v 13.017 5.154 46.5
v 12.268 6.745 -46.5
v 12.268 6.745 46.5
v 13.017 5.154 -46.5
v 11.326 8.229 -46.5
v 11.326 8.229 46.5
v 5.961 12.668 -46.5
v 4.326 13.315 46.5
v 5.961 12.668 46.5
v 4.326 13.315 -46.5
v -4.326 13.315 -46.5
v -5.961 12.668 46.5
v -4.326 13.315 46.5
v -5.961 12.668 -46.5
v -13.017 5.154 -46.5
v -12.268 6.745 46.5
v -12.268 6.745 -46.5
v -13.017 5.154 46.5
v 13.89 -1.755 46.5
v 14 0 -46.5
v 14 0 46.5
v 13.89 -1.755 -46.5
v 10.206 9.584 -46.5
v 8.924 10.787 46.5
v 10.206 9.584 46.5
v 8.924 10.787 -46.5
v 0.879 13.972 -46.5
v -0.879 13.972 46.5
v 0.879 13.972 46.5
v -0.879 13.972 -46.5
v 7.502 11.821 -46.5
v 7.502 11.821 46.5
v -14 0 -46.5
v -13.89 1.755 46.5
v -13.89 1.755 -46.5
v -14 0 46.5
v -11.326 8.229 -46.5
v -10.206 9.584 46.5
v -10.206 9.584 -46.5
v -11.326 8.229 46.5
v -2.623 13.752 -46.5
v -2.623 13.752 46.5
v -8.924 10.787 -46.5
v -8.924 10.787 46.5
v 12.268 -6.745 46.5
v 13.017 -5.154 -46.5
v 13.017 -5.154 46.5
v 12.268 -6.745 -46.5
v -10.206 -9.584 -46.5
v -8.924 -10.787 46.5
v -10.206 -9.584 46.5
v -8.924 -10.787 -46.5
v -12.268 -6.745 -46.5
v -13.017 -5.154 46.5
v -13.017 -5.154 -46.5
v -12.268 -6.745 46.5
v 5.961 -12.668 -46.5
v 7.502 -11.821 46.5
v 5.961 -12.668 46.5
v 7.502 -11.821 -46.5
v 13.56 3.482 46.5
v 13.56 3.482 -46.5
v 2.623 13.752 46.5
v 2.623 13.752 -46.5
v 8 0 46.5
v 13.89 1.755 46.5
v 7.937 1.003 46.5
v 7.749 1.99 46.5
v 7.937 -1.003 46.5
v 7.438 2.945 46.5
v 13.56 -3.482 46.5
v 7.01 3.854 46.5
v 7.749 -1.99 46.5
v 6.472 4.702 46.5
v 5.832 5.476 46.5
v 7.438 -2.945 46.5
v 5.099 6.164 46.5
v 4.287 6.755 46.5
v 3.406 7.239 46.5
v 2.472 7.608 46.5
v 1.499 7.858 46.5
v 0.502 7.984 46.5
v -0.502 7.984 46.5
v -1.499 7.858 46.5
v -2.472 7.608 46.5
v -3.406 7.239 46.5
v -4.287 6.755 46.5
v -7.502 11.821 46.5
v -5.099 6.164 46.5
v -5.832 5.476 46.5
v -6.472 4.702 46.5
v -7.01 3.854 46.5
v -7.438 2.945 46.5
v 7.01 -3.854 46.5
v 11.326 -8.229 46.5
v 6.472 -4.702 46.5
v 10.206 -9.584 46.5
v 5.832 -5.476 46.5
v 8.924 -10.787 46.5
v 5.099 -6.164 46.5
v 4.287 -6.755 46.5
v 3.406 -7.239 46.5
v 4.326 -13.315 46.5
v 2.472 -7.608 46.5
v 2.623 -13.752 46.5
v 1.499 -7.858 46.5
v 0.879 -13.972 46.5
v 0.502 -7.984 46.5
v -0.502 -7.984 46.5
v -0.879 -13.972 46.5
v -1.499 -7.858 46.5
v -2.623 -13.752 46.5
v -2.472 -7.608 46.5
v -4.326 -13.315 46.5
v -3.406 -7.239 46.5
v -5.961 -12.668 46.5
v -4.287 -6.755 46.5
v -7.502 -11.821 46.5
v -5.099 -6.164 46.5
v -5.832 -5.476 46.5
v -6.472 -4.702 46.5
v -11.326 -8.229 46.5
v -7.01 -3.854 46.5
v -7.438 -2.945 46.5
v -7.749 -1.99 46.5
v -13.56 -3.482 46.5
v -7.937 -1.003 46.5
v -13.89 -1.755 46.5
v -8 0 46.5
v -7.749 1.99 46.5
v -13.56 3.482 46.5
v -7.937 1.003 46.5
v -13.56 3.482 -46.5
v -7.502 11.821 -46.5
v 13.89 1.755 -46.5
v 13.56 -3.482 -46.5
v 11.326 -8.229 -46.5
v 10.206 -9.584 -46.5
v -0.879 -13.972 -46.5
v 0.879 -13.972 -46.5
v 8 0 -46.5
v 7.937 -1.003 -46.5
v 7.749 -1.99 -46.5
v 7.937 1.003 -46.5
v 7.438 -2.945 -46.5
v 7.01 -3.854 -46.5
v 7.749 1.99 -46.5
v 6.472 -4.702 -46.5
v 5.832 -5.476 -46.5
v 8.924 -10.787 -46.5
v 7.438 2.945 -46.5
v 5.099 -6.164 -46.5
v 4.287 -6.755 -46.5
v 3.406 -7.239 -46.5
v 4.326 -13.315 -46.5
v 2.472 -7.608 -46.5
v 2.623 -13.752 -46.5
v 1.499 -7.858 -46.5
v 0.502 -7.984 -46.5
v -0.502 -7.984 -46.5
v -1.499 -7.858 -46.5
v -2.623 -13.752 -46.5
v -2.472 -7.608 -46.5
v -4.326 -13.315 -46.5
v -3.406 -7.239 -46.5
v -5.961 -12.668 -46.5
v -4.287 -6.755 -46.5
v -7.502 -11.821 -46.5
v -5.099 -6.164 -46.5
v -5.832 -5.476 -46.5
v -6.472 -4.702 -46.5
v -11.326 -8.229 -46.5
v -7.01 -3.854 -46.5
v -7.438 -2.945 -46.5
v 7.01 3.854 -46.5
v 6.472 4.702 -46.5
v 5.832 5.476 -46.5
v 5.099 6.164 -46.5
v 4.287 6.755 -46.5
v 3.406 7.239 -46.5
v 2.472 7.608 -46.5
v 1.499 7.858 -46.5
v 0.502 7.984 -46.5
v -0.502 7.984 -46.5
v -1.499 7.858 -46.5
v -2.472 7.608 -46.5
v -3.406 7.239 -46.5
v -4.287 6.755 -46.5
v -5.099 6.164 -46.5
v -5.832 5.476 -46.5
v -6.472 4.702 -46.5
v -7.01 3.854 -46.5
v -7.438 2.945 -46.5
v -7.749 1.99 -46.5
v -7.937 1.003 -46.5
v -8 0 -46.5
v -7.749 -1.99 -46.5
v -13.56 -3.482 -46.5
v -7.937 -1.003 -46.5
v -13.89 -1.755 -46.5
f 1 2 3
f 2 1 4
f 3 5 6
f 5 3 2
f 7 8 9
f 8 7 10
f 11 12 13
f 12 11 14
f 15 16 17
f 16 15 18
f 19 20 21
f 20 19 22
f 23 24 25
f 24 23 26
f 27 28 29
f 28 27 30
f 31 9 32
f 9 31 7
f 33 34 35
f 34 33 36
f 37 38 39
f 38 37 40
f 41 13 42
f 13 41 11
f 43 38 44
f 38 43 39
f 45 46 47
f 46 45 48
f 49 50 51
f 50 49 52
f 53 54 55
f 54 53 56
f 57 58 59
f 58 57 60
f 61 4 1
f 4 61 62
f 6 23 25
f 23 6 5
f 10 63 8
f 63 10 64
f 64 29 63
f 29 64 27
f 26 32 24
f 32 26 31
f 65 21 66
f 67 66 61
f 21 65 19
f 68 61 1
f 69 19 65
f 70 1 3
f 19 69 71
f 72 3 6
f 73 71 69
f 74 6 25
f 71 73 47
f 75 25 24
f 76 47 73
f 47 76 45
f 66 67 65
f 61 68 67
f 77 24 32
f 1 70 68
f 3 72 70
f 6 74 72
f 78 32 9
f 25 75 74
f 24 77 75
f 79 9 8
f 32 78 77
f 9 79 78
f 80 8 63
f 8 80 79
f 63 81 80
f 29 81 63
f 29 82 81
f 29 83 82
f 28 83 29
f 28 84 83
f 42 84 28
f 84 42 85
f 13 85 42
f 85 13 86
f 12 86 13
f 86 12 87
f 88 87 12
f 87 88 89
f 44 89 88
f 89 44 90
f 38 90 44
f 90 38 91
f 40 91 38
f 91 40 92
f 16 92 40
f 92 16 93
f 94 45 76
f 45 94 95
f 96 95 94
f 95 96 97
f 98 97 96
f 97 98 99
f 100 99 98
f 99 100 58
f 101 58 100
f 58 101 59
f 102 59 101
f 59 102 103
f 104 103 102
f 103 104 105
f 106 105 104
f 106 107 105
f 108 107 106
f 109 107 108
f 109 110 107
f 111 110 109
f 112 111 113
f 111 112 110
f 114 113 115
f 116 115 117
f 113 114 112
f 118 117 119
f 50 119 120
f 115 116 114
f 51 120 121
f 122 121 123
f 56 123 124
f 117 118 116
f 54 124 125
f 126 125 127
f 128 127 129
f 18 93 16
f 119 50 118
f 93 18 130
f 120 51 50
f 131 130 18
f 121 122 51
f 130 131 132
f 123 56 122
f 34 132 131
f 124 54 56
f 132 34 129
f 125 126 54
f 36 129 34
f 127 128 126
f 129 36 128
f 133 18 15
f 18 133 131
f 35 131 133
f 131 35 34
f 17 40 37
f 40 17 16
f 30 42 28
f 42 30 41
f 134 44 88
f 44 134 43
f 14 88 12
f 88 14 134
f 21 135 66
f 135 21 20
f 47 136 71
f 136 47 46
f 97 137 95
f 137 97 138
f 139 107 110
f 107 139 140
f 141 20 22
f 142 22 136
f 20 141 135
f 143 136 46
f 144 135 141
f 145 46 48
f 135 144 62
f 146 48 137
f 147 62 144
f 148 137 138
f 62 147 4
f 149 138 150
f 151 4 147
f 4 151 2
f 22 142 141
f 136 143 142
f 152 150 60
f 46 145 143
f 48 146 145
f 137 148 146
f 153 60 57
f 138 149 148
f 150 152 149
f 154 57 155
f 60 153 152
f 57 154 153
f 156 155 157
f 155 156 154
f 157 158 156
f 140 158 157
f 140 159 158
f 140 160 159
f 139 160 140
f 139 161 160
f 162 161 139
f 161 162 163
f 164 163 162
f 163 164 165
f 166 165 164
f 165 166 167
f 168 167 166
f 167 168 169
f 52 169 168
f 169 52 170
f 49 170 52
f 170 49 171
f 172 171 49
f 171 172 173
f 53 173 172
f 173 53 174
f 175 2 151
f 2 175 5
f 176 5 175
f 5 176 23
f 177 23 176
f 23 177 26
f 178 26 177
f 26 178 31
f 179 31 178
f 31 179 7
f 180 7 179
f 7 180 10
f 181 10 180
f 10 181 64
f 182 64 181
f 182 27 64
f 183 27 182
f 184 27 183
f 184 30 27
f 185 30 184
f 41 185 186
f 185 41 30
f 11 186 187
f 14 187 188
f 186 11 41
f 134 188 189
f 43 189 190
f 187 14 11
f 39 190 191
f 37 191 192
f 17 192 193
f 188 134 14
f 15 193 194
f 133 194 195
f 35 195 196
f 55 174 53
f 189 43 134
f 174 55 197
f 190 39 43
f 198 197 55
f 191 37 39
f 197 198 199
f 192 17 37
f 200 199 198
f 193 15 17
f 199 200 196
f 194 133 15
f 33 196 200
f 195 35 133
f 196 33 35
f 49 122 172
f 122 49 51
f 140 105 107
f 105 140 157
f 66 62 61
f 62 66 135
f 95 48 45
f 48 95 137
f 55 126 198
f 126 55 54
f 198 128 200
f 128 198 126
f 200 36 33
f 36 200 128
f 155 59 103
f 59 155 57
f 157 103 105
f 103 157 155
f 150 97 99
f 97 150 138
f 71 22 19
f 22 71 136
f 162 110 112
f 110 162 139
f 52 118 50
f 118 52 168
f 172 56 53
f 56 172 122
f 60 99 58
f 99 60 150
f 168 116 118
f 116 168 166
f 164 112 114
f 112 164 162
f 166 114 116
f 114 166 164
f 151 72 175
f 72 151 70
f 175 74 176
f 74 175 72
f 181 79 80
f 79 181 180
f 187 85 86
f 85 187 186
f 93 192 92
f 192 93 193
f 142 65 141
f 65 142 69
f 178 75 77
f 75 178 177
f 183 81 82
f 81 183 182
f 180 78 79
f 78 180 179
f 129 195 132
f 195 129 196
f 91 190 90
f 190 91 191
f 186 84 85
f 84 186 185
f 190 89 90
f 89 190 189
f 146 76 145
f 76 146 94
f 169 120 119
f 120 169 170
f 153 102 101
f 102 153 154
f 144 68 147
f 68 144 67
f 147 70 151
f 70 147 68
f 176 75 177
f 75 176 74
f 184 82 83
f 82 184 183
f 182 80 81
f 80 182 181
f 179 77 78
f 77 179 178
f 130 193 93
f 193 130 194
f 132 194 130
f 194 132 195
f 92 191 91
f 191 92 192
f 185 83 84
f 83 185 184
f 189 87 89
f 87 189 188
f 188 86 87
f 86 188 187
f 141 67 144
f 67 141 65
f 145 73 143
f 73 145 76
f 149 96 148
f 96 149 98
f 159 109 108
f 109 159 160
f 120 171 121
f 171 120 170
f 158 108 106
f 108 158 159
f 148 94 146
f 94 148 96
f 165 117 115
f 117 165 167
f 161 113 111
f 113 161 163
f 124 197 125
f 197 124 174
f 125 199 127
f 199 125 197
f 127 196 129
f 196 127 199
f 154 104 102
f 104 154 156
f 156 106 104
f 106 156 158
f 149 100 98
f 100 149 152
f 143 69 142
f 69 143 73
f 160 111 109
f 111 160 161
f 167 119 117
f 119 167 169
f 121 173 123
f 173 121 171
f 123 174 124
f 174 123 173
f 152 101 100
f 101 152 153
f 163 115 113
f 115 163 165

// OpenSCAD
$fn = 50;


difference() {
	union() {
		translate(v = [0, 0, -46.5000000000]) {
			cylinder(h = 93, r = 14.0000000000);
		}
	}
	union() {
		translate(v = [0, 0, -100.0000000000]) {
			cylinder(h = 200, r = 8);
		}
	}
}
